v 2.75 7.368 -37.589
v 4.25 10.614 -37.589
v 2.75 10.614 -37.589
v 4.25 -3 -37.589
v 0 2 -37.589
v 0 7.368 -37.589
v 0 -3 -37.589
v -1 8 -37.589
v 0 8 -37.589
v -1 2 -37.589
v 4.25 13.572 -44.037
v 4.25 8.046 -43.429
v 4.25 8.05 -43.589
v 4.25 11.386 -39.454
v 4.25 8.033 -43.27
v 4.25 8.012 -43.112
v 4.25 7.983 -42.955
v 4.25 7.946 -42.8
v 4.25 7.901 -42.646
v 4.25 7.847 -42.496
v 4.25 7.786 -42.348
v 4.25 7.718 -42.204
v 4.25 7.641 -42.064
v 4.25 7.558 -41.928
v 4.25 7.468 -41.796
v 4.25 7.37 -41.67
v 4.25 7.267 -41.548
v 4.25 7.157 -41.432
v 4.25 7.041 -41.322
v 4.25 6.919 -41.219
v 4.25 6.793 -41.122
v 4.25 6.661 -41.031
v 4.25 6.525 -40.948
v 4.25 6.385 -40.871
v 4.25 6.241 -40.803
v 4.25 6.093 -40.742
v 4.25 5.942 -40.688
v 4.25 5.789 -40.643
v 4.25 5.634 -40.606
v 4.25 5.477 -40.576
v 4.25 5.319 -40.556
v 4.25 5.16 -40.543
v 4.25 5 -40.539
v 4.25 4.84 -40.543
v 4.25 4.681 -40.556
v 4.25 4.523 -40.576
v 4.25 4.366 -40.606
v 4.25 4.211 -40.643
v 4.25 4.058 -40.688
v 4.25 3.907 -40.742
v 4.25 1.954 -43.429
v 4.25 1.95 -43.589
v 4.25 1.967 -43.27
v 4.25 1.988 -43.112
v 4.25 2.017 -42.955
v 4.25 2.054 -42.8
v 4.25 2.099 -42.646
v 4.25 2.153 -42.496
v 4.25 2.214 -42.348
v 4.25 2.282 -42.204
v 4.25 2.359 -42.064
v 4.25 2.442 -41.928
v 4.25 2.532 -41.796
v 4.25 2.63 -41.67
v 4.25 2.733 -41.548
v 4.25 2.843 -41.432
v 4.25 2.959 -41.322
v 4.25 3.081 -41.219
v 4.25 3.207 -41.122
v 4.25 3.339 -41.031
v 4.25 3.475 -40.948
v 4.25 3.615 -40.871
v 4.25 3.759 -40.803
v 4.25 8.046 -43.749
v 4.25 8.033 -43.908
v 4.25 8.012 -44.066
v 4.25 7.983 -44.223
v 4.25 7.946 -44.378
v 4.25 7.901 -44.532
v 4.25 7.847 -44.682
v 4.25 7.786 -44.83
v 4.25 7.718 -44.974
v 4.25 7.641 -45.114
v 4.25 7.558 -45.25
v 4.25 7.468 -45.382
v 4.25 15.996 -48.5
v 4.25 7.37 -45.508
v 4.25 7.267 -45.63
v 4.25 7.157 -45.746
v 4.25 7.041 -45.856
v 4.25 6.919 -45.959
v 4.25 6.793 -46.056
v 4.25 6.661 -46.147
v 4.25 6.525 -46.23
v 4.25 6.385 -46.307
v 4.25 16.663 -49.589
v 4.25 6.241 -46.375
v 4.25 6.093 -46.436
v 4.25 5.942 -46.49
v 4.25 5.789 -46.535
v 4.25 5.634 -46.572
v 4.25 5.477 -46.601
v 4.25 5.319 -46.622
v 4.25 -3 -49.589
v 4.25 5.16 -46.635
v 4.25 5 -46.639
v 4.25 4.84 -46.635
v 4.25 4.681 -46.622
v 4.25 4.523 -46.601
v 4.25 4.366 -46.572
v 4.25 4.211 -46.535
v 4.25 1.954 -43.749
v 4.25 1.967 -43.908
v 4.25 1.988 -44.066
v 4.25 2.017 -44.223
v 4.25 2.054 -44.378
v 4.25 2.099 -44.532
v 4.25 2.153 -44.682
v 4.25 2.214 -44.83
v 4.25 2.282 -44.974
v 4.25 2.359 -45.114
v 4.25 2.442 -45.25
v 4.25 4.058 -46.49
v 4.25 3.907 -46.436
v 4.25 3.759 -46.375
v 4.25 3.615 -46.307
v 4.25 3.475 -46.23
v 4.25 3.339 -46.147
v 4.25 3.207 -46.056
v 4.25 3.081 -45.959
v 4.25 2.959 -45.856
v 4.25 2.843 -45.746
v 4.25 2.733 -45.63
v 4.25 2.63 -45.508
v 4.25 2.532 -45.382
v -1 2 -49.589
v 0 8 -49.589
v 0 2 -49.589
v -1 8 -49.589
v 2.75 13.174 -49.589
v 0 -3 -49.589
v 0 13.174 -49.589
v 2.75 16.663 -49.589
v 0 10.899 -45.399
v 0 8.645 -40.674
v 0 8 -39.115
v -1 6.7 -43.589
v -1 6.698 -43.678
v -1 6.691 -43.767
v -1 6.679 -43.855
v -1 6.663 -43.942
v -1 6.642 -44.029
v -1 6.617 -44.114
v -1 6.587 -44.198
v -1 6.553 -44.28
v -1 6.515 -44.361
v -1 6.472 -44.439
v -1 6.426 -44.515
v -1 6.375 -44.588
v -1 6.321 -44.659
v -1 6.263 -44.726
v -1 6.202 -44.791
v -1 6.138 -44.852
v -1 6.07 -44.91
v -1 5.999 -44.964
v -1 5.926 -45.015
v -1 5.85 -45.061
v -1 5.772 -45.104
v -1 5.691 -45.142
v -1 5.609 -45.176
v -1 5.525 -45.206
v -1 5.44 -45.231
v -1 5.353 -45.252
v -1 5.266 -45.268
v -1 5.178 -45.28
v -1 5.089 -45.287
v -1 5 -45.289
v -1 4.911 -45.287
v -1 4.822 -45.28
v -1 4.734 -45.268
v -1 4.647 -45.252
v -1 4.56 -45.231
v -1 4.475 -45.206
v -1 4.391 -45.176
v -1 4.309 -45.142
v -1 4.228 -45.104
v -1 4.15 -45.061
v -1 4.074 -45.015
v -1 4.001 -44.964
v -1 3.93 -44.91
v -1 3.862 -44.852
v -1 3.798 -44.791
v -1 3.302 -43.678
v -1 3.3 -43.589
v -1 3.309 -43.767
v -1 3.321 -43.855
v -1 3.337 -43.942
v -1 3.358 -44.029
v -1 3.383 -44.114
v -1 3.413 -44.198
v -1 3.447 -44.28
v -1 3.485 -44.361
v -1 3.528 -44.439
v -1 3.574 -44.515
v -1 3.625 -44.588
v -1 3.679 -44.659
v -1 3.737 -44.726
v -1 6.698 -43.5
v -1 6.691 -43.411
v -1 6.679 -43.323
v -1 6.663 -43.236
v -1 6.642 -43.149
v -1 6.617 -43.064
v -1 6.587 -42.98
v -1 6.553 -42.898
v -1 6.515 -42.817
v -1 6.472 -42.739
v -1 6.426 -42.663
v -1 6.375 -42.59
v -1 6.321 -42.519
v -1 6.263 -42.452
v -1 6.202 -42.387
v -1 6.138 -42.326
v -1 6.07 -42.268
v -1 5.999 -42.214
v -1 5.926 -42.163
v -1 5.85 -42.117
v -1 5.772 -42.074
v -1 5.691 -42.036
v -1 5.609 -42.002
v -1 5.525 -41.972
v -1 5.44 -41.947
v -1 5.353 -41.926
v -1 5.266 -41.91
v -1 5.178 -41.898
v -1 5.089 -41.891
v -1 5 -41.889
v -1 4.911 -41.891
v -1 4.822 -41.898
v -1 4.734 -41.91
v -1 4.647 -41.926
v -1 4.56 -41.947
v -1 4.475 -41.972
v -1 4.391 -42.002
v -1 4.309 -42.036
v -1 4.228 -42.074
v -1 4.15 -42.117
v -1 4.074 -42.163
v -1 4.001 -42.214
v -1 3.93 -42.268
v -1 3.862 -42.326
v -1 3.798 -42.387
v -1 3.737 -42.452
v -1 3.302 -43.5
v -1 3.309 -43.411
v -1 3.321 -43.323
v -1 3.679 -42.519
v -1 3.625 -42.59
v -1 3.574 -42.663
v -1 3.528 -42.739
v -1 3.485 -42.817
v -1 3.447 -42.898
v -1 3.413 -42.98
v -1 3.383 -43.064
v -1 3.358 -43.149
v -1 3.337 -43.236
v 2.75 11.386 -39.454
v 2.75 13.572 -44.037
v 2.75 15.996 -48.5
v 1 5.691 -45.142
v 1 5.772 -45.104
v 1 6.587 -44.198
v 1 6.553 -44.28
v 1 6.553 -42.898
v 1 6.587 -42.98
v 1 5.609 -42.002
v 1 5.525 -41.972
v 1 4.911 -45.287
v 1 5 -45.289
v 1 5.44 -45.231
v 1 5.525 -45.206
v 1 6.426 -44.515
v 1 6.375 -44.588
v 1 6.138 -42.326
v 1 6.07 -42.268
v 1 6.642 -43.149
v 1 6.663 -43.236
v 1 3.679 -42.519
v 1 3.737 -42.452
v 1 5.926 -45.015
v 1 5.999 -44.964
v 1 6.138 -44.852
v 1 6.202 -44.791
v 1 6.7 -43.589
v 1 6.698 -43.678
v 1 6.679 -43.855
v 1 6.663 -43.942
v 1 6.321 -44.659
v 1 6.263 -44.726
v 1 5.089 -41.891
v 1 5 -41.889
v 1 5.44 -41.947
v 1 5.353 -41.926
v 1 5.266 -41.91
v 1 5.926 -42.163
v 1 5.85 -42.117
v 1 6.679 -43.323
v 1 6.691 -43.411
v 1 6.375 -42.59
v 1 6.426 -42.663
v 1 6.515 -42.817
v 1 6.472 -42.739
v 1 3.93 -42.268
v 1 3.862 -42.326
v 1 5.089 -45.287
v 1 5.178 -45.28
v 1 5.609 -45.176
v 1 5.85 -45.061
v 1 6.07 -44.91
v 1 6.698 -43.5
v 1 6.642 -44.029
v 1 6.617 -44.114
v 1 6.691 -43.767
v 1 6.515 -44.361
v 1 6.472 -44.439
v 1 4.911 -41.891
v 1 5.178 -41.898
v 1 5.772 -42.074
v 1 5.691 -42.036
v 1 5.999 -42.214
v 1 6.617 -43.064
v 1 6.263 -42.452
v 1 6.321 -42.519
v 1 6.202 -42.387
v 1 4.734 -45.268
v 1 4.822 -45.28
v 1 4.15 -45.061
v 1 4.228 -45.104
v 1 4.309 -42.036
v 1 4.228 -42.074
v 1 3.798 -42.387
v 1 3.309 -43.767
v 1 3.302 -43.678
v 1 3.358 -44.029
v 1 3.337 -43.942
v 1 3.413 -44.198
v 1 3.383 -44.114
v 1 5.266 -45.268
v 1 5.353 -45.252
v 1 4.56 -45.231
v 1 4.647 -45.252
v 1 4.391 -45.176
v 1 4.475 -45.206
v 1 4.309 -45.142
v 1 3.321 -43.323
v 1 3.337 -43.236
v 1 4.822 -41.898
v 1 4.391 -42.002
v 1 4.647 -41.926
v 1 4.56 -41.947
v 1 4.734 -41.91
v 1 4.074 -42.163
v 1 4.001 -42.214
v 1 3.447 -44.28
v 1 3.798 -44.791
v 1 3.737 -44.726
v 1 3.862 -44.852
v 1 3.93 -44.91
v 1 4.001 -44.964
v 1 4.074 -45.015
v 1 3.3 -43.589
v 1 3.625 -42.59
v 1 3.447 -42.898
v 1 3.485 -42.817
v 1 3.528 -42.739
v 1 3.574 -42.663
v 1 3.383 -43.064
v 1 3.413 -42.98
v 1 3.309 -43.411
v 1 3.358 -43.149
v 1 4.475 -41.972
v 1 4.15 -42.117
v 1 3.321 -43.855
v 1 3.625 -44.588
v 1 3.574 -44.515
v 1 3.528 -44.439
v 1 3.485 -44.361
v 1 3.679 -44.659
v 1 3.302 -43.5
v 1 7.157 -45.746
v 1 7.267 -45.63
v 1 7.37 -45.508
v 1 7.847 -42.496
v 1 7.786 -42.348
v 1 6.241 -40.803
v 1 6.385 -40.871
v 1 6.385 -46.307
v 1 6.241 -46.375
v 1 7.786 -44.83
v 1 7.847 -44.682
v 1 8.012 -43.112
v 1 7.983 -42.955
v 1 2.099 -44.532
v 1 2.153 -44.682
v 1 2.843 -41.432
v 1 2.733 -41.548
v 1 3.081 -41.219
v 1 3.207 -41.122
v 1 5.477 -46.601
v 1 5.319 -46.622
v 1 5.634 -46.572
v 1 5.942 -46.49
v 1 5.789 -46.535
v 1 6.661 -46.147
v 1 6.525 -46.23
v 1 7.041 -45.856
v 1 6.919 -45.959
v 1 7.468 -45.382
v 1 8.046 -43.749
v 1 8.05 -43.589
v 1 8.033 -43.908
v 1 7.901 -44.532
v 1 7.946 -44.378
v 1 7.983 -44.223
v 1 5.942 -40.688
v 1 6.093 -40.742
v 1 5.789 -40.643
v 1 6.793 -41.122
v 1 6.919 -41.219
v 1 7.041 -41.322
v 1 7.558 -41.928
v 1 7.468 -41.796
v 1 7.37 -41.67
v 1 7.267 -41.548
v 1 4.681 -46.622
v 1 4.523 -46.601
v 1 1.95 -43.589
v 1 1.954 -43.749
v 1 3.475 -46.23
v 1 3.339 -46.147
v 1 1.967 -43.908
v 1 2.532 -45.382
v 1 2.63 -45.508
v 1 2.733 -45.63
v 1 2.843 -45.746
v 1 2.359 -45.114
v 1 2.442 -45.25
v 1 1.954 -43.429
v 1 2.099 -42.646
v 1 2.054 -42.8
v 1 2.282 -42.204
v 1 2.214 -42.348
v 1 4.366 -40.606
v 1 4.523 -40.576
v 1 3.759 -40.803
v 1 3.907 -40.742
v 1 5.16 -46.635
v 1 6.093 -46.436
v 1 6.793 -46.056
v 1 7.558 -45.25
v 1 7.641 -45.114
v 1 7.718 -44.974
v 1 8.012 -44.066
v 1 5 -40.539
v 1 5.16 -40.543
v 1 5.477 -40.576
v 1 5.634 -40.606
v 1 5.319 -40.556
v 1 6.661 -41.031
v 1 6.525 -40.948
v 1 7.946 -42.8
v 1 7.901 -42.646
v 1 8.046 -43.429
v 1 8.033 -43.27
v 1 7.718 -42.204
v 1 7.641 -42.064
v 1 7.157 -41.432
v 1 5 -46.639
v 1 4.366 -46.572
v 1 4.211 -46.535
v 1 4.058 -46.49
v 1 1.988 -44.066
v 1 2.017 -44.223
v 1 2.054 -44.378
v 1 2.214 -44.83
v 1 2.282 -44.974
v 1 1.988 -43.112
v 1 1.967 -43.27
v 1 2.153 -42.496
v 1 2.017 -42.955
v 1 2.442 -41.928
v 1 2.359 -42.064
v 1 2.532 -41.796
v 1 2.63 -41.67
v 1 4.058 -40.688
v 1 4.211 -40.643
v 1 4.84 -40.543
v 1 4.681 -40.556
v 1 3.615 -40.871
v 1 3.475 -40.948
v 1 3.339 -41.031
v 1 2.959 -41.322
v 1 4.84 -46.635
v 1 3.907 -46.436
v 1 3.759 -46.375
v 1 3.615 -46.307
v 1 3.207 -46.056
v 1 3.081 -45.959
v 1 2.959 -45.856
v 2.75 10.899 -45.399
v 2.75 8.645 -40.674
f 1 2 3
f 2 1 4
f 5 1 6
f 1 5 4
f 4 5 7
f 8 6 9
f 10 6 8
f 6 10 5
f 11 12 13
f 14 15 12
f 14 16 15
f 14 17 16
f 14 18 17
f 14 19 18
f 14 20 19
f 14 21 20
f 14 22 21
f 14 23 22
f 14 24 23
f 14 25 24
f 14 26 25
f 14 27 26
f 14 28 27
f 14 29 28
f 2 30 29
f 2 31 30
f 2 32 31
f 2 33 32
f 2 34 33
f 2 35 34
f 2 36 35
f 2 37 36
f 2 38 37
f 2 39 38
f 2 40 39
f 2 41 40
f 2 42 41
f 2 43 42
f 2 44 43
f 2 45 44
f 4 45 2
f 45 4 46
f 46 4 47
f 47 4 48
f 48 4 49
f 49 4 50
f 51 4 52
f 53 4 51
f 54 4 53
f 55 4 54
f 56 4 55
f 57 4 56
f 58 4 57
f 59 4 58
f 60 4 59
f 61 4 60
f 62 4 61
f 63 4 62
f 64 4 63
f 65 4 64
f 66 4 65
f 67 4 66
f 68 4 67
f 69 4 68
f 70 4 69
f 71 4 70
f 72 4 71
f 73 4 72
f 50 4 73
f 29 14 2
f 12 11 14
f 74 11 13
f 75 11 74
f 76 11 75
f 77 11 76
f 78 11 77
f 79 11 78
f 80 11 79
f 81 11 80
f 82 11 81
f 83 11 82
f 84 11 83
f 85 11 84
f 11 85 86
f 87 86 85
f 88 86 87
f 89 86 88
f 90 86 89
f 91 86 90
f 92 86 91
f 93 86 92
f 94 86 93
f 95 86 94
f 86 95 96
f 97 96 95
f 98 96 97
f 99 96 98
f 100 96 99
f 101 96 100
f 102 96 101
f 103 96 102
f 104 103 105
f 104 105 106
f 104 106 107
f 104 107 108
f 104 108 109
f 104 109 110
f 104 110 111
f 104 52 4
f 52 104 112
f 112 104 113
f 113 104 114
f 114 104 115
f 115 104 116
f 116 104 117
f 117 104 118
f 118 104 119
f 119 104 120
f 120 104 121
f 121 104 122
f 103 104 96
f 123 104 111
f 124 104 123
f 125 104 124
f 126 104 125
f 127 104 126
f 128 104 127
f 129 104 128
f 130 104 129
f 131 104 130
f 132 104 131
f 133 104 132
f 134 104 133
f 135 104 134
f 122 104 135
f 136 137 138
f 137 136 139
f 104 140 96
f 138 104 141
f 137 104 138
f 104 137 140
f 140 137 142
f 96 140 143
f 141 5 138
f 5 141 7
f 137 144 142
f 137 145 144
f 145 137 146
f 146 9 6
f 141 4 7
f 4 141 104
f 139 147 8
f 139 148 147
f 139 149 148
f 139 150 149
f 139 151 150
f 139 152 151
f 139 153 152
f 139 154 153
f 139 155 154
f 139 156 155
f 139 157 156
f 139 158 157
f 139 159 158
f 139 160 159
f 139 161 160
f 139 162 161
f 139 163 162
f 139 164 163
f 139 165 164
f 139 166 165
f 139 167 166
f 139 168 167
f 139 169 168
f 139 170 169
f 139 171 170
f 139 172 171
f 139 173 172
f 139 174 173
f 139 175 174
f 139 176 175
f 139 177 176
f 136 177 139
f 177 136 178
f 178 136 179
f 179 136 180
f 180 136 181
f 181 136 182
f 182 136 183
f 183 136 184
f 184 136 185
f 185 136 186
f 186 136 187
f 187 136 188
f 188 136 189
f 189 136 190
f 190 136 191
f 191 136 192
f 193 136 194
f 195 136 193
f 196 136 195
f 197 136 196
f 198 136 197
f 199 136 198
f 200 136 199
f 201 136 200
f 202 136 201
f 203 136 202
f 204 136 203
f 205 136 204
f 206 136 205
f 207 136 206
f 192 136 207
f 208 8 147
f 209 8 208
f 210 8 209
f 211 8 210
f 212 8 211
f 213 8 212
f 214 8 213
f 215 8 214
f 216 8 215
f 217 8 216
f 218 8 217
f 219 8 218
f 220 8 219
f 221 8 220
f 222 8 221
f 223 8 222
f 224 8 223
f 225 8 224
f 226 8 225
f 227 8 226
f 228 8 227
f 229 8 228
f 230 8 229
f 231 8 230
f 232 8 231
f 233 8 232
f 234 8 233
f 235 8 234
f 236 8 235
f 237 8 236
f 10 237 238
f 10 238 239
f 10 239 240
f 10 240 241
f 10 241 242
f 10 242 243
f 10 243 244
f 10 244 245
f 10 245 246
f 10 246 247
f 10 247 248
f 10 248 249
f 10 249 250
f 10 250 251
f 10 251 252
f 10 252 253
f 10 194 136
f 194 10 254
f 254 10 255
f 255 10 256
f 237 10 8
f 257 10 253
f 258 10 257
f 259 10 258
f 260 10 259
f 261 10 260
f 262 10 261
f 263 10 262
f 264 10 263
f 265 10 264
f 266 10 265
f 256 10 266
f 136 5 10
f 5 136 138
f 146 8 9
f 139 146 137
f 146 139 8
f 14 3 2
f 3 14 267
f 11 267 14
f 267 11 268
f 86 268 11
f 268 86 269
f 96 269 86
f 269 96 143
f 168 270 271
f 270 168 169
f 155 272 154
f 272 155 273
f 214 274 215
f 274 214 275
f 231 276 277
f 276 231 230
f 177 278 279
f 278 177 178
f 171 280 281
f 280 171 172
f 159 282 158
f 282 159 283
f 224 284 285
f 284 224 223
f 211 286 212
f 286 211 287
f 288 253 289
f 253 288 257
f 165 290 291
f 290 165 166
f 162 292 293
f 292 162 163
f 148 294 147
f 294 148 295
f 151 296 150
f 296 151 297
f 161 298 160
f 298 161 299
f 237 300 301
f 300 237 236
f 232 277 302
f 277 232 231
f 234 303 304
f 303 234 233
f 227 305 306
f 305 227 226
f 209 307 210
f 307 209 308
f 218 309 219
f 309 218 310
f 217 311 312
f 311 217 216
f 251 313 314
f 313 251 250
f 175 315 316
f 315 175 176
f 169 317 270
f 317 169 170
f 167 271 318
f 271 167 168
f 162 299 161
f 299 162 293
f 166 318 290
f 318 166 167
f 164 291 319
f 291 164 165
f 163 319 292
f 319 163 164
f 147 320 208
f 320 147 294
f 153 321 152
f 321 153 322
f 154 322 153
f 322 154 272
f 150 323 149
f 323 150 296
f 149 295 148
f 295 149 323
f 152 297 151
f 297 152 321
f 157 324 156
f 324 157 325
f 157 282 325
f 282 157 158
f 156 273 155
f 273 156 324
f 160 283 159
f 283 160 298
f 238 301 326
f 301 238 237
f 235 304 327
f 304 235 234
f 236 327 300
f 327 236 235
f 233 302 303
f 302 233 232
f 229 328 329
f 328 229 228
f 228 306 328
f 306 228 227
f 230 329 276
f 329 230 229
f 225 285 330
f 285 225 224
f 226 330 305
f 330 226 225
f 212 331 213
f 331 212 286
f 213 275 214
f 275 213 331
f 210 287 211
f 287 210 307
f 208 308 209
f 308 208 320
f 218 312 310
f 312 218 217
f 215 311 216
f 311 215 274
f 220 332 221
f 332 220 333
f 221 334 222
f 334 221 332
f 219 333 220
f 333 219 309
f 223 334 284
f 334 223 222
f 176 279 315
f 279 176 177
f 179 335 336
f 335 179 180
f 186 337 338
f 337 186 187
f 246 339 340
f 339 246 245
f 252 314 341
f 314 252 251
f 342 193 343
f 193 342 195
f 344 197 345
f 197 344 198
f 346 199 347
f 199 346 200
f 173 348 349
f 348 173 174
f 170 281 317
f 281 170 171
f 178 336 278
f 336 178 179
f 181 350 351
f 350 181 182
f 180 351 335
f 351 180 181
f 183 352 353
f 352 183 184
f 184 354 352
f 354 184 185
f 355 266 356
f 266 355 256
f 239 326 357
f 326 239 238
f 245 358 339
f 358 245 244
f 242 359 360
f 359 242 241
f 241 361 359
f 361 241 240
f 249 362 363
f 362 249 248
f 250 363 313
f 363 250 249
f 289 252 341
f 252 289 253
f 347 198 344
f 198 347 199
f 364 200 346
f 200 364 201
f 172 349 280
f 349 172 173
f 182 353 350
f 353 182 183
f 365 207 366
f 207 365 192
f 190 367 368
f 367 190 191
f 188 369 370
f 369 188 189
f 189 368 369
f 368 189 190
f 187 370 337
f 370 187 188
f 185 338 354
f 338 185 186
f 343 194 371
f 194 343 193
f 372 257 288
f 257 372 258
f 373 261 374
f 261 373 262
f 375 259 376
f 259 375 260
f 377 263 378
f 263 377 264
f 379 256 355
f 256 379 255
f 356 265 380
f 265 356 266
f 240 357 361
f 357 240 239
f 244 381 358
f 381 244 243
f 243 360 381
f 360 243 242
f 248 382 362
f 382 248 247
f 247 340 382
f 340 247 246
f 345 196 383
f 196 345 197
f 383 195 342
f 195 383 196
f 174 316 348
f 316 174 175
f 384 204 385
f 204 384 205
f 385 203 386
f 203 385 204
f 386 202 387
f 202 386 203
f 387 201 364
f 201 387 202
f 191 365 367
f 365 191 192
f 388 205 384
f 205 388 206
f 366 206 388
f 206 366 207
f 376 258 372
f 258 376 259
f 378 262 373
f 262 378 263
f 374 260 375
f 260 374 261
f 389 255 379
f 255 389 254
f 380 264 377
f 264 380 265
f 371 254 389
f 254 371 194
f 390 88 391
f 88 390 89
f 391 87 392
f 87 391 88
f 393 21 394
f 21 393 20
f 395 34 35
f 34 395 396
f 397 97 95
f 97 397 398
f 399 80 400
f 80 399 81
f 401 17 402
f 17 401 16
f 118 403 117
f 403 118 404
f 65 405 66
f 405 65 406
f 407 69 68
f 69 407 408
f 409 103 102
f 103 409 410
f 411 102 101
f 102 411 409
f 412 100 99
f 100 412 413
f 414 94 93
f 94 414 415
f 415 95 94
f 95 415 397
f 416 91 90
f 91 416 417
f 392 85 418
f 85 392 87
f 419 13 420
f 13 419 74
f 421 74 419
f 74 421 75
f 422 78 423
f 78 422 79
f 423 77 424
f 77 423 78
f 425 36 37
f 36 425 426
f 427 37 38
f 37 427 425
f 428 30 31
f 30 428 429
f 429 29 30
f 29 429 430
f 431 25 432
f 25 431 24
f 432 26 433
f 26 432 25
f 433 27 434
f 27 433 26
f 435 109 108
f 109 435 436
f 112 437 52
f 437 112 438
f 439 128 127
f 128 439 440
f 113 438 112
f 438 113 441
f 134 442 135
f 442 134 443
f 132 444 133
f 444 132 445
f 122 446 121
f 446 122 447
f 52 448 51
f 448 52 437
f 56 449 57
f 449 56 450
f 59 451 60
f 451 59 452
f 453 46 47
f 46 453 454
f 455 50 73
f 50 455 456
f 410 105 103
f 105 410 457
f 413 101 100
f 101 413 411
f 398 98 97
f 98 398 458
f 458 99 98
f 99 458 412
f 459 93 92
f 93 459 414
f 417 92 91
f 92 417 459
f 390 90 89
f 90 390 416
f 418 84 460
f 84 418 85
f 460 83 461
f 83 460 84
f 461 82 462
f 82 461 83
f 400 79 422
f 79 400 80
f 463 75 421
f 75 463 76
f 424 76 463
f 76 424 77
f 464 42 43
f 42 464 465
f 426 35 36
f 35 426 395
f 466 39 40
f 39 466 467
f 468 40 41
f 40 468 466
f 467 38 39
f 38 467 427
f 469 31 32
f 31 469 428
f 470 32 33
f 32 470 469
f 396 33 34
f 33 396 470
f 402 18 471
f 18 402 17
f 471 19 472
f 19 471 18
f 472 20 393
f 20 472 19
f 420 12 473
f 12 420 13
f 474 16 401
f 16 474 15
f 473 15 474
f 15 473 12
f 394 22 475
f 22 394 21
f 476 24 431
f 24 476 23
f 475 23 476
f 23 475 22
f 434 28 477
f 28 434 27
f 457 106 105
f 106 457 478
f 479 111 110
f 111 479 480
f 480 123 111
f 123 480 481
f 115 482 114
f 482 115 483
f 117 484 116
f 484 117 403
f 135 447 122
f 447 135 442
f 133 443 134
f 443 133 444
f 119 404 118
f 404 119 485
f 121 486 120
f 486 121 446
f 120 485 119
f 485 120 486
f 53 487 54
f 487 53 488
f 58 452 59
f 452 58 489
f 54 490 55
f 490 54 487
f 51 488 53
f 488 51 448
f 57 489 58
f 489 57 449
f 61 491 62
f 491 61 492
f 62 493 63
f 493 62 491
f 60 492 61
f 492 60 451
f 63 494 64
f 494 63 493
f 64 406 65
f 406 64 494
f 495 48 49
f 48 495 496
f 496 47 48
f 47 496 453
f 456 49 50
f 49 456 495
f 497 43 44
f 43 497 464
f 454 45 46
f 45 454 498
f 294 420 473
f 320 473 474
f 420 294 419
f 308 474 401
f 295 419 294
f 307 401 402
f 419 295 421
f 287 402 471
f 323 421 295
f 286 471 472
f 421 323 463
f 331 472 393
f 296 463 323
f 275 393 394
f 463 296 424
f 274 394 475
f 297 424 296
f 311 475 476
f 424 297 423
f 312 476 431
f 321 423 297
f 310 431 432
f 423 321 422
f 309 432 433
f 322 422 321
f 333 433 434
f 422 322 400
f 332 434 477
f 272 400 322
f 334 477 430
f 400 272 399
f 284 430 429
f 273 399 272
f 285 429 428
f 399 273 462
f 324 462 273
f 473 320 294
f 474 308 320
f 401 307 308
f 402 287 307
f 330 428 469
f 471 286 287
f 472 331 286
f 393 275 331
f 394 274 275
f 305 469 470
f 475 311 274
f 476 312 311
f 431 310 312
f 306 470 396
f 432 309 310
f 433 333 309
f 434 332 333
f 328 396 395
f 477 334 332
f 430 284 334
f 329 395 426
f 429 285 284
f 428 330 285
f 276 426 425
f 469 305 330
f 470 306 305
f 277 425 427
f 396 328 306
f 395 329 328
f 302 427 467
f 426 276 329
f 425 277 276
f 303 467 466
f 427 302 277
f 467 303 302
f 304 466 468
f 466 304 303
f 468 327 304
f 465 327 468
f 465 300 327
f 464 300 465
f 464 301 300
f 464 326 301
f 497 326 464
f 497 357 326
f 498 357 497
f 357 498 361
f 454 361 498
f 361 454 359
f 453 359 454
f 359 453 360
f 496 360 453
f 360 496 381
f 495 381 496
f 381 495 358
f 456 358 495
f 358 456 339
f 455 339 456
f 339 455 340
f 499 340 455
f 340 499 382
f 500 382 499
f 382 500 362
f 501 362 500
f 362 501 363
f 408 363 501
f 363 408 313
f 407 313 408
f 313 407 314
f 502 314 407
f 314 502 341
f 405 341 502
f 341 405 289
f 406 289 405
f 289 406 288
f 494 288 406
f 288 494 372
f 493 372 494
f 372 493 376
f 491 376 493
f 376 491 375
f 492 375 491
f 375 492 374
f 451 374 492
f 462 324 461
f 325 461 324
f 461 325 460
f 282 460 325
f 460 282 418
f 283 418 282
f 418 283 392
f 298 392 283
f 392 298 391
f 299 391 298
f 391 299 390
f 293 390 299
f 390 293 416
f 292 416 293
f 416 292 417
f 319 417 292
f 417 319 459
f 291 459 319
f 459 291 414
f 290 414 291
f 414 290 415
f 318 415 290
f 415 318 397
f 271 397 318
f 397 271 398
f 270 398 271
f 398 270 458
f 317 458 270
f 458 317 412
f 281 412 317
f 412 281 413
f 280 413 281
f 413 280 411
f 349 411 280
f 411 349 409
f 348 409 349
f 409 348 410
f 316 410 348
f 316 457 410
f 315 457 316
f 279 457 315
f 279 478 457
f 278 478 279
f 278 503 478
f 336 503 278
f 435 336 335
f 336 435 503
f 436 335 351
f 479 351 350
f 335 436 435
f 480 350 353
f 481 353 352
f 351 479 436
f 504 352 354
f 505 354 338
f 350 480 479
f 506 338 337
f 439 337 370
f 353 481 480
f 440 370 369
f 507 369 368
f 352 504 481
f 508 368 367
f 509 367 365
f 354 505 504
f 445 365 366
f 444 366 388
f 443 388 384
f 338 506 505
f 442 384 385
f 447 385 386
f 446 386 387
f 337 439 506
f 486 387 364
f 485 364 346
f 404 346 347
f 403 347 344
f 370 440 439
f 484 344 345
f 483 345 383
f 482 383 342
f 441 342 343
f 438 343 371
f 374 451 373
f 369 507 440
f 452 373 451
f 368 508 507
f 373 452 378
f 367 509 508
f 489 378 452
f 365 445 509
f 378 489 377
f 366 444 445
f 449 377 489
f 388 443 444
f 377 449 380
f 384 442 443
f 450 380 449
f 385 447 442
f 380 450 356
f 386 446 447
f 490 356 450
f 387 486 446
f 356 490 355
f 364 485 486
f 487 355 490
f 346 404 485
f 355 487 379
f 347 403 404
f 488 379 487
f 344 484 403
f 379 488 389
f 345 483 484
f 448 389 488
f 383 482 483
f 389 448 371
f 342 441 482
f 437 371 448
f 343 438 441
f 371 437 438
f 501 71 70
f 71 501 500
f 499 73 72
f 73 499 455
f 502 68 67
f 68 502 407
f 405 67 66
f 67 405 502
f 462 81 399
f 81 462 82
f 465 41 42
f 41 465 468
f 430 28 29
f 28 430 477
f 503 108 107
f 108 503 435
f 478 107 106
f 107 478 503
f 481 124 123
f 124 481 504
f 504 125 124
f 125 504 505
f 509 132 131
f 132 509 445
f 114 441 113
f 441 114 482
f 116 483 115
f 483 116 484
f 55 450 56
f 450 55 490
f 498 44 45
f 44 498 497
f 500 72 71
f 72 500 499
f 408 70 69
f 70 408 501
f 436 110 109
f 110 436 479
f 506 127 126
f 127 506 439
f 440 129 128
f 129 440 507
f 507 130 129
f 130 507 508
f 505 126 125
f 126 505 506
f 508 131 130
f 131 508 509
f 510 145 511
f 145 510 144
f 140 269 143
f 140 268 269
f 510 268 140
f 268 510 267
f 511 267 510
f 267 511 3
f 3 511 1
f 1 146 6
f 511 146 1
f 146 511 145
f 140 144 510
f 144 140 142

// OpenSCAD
include <../../lib/relativity.scad/relativity.scad> // https://github.com/davidson16807/relativity.scad

// -----------------------
// configuration
plate_diameter = 200;
plate_thickness = 3 - 0.25;  // set it to a little smaller then real thickness
lip_thickness = 1.5;
lip_size = 3;
y_offset = 5;
debug = false;
// -----------------------

width = 12;
$fn = 120;

height = plate_thickness + lip_thickness;
plate_radius = plate_diameter / 2;
x_offset = sqrt(pow(plate_radius, 2) - pow(plate_radius - y_offset - 5, 2));

module plate() {
  rod(d=plate_diameter, h=plate_thickness, anchor=-y-z);
}

module main() {
  difference() {
    union() {
      translated(x_offset*x + (y_offset-8)*y) box([width, x_offset, height], anchor=-y-z);
      translated(x_offset*x + y_offset*y) box([width, 6, 1], anchor=top);
    }
    translated(plate_radius*y) rod(r=plate_radius-lip_size, h=height+1, anchor=-z);
    translated(x_offset*x+y_offset*y) rod(d=3.4, h=height*2);
    translated(x_offset*x+y_offset*y+1*z) rod(d=6.1, h=height+1, anchor=-z);
    plate();
  }
}

if (debug) {
  main();
  color("red") plate();
} else {
  rotated(90*y) main();
}
